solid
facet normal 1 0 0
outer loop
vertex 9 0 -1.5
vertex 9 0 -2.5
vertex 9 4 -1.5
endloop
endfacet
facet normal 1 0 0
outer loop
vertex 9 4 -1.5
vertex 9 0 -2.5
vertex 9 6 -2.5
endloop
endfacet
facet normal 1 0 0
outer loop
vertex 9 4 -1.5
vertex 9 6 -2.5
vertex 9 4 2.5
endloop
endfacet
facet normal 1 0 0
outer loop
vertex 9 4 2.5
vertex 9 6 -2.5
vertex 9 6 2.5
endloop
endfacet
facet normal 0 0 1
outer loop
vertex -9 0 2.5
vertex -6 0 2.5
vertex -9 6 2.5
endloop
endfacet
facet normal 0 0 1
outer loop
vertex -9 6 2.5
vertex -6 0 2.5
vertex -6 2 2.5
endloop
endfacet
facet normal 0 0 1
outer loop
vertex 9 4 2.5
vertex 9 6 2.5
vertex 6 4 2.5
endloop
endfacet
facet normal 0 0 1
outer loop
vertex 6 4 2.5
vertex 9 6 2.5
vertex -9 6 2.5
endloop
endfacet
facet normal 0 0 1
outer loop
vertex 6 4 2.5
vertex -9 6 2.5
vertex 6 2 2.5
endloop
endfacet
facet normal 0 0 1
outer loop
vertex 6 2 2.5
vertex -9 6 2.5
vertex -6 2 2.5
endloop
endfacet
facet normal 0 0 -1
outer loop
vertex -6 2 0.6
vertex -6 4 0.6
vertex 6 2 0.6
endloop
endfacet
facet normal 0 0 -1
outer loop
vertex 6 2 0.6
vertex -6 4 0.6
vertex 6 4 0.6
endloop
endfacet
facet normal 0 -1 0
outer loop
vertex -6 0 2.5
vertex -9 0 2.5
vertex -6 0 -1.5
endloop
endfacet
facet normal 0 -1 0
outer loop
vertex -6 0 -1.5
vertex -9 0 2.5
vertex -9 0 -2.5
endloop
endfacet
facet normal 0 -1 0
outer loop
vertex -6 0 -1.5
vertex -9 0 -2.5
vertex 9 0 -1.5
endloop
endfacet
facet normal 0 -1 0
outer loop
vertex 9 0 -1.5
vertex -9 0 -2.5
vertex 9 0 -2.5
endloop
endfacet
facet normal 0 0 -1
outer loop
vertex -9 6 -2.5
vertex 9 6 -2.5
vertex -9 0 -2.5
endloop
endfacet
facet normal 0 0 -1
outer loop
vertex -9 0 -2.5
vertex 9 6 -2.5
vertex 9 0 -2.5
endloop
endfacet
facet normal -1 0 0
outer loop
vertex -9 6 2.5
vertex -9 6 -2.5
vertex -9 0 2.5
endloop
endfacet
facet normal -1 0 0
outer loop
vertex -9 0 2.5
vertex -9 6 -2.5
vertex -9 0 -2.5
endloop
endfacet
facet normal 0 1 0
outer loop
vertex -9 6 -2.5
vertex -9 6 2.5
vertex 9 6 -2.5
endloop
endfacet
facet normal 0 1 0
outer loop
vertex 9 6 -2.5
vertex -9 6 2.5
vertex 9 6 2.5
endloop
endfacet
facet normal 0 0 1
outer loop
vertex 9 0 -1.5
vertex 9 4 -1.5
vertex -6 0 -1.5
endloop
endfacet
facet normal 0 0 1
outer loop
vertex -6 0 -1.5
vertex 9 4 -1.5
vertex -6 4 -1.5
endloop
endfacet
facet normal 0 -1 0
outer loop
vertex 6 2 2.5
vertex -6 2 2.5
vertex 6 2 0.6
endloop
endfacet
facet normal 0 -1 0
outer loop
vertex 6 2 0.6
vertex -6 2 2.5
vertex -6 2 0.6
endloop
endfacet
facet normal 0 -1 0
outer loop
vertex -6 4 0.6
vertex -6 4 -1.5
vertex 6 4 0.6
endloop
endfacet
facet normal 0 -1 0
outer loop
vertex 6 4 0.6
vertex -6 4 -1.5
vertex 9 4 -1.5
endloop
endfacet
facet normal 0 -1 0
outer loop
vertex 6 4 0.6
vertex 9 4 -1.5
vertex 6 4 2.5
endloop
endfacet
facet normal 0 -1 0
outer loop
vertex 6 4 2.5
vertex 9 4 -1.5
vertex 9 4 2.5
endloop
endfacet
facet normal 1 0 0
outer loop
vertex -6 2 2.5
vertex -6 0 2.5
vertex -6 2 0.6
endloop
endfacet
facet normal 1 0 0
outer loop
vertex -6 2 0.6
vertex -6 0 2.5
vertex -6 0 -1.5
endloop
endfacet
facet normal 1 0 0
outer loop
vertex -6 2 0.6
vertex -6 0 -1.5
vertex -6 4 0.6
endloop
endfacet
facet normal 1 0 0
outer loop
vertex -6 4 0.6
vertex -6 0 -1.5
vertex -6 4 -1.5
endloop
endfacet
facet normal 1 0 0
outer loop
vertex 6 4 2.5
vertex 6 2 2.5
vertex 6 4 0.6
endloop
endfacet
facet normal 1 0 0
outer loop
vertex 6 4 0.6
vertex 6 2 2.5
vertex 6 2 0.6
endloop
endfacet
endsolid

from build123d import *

# Parameters (mm, degrees)
SKETCH2_W           = 18
SKETCH2_H           = 5
BOSS_EXTRUDE1_DEPTH = 6
CUT_EXTRUDE1_DEPTH  = 15
CUT_EXTRUDE2_REACH  = 13.916
SKETCH4_W           = 3
SKETCH4_H           = 2


with BuildPart() as part:
    # Sketch2 → Boss-Extrude1 (new body)
    with BuildSketch(Plane(origin=(0, 0, 0), x_dir=(1, 0, 0), z_dir=(0, 1, 0))):
        Rectangle(SKETCH2_W, SKETCH2_H)
    extrude(amount=BOSS_EXTRUDE1_DEPTH)

    # Sketch3 → Cut-Extrude1 (cut)
    with BuildSketch(Plane(origin=(9, 0, 0), x_dir=(0, 0, -1), z_dir=(1, 0, 0))):
        Polygon((-2.5, 0), (1.5, 0), (1.5, 4), (-0.6, 4), (-0.6, 2), (-2.5, 2), align=None)
    extrude(amount=-CUT_EXTRUDE1_DEPTH, mode=Mode.SUBTRACT)

    # Sketch4 → Cut-Extrude2 (cut, up to next)
    with BuildSketch(Plane.XY.offset(2.5), mode=Mode.PRIVATE) as cut_extrude2_sk1:
        with Locations((7.5, 3)):
            Rectangle(SKETCH4_W, SKETCH4_H)
    cut_extrude2_tool1 = extrude(cut_extrude2_sk1.sketch, amount=-CUT_EXTRUDE2_REACH, mode=Mode.PRIVATE) & part.part
    add(cut_extrude2_tool1.solids().sort_by_distance((7.5, 3, 2.5))[0], mode=Mode.SUBTRACT)


solid = part.part
